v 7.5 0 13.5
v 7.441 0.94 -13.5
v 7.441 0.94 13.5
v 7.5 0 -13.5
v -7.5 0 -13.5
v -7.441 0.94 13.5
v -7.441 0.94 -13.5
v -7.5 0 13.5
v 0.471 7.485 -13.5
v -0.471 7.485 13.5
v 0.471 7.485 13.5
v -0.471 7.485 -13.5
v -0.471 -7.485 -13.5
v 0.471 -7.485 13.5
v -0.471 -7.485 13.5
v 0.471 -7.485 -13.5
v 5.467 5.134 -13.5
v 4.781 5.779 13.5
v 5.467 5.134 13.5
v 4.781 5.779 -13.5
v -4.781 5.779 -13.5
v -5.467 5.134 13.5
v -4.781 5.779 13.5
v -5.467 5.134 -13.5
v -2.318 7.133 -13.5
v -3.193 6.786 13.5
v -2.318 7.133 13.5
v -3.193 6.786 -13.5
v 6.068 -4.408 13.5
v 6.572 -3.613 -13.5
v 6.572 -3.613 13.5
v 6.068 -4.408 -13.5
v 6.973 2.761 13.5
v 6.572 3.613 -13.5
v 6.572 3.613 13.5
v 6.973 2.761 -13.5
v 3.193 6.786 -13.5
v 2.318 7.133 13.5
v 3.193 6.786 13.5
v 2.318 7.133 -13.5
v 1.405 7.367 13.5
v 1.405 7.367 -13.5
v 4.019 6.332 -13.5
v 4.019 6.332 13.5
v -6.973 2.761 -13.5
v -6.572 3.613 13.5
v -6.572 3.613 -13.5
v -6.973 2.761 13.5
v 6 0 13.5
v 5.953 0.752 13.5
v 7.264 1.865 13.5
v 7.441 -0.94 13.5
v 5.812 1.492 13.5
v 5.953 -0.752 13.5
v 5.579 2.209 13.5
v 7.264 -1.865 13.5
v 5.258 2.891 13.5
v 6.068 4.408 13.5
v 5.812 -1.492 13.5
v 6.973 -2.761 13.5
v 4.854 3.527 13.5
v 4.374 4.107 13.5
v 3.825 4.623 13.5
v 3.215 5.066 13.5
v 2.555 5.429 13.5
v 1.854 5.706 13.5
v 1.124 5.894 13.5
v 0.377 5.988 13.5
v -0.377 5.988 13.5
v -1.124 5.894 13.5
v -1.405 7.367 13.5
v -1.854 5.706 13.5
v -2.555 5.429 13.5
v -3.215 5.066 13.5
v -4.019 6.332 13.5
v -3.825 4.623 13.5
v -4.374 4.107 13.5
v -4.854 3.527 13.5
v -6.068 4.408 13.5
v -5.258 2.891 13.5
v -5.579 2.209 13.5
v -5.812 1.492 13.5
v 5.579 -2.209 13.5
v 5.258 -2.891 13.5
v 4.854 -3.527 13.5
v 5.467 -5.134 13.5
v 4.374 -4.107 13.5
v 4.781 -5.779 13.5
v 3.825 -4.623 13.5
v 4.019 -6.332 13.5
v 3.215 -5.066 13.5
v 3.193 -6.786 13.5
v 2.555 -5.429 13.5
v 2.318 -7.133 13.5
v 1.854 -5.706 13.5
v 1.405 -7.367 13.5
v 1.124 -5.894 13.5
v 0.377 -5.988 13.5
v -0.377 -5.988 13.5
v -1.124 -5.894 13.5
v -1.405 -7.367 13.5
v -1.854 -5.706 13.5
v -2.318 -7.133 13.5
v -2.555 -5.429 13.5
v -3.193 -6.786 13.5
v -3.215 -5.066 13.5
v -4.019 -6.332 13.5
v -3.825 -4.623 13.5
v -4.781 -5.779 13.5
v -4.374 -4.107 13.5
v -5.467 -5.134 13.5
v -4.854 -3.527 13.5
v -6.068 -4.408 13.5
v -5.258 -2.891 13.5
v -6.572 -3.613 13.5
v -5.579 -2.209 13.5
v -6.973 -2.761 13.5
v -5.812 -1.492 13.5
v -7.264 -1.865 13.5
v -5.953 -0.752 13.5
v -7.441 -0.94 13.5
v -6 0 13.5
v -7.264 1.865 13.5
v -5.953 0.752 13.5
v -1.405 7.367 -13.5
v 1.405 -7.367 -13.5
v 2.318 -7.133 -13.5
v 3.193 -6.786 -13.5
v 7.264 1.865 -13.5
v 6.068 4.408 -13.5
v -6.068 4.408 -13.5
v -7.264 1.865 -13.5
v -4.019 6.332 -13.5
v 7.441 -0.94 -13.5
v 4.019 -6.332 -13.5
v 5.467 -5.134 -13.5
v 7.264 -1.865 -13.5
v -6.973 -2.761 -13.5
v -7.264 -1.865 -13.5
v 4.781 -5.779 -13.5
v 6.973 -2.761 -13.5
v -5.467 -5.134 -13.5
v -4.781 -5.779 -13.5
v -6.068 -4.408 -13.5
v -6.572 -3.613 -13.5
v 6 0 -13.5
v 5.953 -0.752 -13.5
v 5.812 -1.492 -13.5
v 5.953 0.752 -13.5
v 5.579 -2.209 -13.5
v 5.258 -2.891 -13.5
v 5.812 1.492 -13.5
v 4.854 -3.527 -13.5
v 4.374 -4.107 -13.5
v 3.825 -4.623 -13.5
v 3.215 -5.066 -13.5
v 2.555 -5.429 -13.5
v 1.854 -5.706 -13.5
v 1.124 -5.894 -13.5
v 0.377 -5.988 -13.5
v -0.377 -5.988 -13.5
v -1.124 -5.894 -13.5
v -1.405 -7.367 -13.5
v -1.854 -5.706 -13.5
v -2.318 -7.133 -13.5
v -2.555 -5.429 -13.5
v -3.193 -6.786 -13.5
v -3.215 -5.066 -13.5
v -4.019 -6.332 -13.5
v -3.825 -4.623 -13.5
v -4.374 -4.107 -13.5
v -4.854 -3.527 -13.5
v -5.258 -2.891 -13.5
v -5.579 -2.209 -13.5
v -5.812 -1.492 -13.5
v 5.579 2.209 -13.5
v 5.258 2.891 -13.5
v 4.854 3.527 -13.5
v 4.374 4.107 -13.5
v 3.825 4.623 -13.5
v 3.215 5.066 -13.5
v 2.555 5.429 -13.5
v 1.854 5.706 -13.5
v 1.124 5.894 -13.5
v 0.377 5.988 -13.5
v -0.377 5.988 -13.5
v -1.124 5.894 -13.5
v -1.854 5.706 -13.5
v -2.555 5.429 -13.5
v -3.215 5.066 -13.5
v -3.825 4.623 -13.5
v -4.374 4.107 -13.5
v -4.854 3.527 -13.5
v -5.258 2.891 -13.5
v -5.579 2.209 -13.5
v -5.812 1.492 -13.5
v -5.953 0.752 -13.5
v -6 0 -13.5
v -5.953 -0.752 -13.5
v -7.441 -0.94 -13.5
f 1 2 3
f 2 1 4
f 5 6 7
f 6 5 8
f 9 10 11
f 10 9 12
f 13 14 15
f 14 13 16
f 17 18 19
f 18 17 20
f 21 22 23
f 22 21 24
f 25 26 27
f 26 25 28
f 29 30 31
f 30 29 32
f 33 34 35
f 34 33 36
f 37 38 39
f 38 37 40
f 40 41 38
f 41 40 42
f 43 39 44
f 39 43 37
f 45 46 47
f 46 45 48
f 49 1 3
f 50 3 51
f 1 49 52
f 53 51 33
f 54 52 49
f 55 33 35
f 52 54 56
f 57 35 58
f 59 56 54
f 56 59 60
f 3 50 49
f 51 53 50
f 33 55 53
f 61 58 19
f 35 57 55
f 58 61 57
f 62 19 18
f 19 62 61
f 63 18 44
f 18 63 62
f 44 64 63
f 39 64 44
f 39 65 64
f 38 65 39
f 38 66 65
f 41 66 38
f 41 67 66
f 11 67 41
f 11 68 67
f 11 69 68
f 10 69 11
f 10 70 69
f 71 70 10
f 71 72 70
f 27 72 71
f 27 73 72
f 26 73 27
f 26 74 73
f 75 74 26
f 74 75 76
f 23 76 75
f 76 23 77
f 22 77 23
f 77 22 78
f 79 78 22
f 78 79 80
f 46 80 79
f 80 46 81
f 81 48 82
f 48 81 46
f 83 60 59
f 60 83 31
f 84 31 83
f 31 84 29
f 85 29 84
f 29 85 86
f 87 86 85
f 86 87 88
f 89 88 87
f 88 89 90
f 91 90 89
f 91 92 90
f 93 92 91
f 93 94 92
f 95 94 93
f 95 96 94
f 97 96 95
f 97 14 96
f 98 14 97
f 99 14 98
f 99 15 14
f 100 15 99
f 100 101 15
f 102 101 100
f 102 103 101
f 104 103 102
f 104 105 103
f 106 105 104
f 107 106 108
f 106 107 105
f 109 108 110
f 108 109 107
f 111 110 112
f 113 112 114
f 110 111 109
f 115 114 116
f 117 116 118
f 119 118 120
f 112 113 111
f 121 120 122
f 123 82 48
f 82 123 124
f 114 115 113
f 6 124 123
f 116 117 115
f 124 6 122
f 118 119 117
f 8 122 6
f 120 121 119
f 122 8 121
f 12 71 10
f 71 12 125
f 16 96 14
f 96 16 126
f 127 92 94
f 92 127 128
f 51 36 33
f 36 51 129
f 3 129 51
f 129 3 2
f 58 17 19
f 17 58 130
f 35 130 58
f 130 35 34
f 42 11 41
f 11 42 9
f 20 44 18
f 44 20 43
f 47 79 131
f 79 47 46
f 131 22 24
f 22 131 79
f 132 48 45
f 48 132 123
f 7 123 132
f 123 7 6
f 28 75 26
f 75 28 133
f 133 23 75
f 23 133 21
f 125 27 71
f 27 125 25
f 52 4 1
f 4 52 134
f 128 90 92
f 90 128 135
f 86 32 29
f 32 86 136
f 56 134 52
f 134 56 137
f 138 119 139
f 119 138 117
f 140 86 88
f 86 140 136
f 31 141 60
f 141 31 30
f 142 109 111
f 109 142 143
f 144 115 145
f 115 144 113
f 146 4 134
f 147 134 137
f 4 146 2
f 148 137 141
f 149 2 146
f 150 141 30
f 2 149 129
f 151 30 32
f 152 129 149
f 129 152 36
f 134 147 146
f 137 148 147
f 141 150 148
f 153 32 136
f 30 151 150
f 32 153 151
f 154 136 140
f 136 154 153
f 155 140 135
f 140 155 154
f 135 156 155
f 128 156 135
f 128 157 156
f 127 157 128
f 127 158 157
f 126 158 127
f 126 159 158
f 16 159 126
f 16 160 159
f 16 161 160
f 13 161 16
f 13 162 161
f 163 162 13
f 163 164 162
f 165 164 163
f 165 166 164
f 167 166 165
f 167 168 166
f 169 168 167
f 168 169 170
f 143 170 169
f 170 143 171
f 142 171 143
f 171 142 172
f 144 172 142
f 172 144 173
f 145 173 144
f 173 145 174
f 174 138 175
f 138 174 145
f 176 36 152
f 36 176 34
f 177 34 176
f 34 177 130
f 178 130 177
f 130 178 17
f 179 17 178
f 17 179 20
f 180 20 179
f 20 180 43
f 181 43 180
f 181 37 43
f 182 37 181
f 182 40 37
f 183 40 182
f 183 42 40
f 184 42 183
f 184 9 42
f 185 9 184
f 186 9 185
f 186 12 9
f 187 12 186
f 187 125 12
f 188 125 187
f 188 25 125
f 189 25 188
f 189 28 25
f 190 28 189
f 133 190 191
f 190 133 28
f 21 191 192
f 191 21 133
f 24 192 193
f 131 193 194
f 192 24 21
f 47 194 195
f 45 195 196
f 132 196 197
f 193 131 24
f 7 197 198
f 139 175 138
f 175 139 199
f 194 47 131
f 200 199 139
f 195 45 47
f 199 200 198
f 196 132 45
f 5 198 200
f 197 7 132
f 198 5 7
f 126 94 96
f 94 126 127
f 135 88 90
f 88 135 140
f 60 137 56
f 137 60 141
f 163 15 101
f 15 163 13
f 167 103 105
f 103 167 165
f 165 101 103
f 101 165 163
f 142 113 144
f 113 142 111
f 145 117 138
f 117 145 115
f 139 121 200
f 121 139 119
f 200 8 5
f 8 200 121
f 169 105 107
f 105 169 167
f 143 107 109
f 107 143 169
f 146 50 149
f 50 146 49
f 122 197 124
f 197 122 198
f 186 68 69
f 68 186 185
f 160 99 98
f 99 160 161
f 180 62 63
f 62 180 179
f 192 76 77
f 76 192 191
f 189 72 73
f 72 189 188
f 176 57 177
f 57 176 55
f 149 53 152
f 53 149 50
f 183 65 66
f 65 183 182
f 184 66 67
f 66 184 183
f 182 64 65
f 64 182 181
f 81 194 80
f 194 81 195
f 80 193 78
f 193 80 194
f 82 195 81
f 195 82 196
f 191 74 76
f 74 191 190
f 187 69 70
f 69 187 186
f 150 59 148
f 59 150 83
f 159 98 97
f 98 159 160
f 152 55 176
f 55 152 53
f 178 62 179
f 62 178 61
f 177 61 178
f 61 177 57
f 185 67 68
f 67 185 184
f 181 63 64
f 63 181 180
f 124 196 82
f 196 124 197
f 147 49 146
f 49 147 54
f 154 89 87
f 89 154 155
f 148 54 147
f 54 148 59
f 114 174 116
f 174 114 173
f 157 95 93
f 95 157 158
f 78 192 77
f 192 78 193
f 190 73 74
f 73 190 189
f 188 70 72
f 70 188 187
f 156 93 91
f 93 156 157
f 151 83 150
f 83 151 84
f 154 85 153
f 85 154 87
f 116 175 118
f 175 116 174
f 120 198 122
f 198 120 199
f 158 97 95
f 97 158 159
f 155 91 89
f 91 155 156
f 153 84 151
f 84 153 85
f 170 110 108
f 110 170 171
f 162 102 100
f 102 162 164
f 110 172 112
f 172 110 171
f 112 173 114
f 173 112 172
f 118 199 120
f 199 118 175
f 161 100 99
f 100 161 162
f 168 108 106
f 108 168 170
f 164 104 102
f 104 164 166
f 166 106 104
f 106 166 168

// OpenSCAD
$fn = 50;


difference() {
	union() {
		translate(v = [0, 0, -13.5000000000]) {
			cylinder(h = 27, r = 7.5000000000);
		}
	}
	union() {
		translate(v = [0, 0, -100.0000000000]) {
			cylinder(h = 200, r = 6);
		}
	}
}
